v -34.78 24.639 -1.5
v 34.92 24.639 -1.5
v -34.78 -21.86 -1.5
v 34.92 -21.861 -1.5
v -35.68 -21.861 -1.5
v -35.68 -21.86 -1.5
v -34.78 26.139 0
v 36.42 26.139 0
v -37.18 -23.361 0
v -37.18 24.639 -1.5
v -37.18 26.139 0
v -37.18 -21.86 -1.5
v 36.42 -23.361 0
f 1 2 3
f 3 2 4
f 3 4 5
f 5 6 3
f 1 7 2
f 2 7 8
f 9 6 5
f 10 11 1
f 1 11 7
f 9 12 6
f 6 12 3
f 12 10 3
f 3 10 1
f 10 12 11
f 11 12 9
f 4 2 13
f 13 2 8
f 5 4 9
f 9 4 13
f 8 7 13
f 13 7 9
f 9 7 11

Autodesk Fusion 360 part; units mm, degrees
sketch "LED window" plane through (0, 0, 0) normal (0, 0, 1) x (1, 0, 0)
  line L0 (23.6586, 17.7446) -> (-28.2697, 17.7446)
  line L1 (-28.2697, 17.7446) -> (-28.2697, -2.7419)
  line L2 (-28.2697, -2.7419) -> (23.6586, -2.7419)
  line L3 (23.6586, -2.7419) -> (23.6586, 17.7446)
sketch "Bottom" plane through (0, 0, 0) normal (0, 0, 1) x (1, 0, 0)
  line L0 (-37.1804, -23.3607) -> (36.4196, -23.3607)
  line L1 (36.4196, -23.3607) -> (36.4196, 26.1393)
  line L2 (36.4196, 26.1393) -> (-37.1804, 26.1393)
  line L3 (-37.1804, 26.1393) -> (-37.1804, -23.3607)
  dimension "d148" = 73.6
  dimension "d149" = 49.5
extrude "Extrude32" add sketch "Bottom" along normal blind 1.5 draft -45 makes body 1
ref_plane "WorkPlane3" through (-37.1804, 1.3893, 0) normal (1, 0, 0) x (0, -1, 0)
sketch "Sketch23" plane through (-37.1804, -58.3607, 0) normal (1, 0, 0) x (0, 1, 0)
  line L0 (84.5, 0) -> (35, 0)
  line L1 (35, 0) -> (35, 1.5002)
  line L2 (35, 1.5002) -> (84.5, 1.5002)
  line L3 (84.5, 1.5002) -> (84.5, 0)
  line L4 (35, 0) -> (36.5005, 1.5002)
  line L5 (82.9998, 1.5002) -> (84.5, 1.5002)
  line L6 (82.9998, 1.5002) -> (84.5, 0)
  line L7 (84.5, 0) -> (84.5, 1.5002)
  point P0 (84.5, 0)
  dimension "d167" = 49.5
extrude "Extrude33" add sketch "Sketch23" along normal blind 1 contours L0 L2 L4 L6 bodies 1
extrude "Extrude34" add 1 faces at (-36.1804, -6.3605, 1.1667) along direction (1, 0, 0) blind 1.4 on bodies 1 bodies 1
mirror "Mirror1" about plane through (0, 0, 0) normal (0, 0, 1) of bodies 1 makes body 2
hidden bodies 1
equation "WINDOW_H = 7 mm"
equation "WINDOW_W = 4 mm"
equation "TOP_H = 1.5 mm"
equation "WALL = 18.5 mm + TOP_H"
equation "TOP_Z = 75.5 mm"
equation "TOP_HEIGHT = 52 mm"
equation "TOP_WIDTH = 75.5 mm"
equation "WALL_THICK = TOP_H"
equation "OUTER_DIAM = 4 mm"
equation "INNER_DIAM = 2.5 mm"
equation "CIRCLE_X_OFFSET = 41 mm"
equation "OUTER_HEIGHT = 6.4 mm + TOP_H"
equation "INNER_HEIGHT = OUTER_HEIGHT + 3.5 mm"
equation "d148 = TOP_WIDTH - ( WALL_THICK * 2 ) + 1.1 mm"
equation "d149 = TOP_HEIGHT - WALL_THICK * 2 - 0.5 mm"
equation "d150 = WALL_THICK"
equation "d167 = TOP_HEIGHT - WALL_THICK * 2 - 0.5 mm"
